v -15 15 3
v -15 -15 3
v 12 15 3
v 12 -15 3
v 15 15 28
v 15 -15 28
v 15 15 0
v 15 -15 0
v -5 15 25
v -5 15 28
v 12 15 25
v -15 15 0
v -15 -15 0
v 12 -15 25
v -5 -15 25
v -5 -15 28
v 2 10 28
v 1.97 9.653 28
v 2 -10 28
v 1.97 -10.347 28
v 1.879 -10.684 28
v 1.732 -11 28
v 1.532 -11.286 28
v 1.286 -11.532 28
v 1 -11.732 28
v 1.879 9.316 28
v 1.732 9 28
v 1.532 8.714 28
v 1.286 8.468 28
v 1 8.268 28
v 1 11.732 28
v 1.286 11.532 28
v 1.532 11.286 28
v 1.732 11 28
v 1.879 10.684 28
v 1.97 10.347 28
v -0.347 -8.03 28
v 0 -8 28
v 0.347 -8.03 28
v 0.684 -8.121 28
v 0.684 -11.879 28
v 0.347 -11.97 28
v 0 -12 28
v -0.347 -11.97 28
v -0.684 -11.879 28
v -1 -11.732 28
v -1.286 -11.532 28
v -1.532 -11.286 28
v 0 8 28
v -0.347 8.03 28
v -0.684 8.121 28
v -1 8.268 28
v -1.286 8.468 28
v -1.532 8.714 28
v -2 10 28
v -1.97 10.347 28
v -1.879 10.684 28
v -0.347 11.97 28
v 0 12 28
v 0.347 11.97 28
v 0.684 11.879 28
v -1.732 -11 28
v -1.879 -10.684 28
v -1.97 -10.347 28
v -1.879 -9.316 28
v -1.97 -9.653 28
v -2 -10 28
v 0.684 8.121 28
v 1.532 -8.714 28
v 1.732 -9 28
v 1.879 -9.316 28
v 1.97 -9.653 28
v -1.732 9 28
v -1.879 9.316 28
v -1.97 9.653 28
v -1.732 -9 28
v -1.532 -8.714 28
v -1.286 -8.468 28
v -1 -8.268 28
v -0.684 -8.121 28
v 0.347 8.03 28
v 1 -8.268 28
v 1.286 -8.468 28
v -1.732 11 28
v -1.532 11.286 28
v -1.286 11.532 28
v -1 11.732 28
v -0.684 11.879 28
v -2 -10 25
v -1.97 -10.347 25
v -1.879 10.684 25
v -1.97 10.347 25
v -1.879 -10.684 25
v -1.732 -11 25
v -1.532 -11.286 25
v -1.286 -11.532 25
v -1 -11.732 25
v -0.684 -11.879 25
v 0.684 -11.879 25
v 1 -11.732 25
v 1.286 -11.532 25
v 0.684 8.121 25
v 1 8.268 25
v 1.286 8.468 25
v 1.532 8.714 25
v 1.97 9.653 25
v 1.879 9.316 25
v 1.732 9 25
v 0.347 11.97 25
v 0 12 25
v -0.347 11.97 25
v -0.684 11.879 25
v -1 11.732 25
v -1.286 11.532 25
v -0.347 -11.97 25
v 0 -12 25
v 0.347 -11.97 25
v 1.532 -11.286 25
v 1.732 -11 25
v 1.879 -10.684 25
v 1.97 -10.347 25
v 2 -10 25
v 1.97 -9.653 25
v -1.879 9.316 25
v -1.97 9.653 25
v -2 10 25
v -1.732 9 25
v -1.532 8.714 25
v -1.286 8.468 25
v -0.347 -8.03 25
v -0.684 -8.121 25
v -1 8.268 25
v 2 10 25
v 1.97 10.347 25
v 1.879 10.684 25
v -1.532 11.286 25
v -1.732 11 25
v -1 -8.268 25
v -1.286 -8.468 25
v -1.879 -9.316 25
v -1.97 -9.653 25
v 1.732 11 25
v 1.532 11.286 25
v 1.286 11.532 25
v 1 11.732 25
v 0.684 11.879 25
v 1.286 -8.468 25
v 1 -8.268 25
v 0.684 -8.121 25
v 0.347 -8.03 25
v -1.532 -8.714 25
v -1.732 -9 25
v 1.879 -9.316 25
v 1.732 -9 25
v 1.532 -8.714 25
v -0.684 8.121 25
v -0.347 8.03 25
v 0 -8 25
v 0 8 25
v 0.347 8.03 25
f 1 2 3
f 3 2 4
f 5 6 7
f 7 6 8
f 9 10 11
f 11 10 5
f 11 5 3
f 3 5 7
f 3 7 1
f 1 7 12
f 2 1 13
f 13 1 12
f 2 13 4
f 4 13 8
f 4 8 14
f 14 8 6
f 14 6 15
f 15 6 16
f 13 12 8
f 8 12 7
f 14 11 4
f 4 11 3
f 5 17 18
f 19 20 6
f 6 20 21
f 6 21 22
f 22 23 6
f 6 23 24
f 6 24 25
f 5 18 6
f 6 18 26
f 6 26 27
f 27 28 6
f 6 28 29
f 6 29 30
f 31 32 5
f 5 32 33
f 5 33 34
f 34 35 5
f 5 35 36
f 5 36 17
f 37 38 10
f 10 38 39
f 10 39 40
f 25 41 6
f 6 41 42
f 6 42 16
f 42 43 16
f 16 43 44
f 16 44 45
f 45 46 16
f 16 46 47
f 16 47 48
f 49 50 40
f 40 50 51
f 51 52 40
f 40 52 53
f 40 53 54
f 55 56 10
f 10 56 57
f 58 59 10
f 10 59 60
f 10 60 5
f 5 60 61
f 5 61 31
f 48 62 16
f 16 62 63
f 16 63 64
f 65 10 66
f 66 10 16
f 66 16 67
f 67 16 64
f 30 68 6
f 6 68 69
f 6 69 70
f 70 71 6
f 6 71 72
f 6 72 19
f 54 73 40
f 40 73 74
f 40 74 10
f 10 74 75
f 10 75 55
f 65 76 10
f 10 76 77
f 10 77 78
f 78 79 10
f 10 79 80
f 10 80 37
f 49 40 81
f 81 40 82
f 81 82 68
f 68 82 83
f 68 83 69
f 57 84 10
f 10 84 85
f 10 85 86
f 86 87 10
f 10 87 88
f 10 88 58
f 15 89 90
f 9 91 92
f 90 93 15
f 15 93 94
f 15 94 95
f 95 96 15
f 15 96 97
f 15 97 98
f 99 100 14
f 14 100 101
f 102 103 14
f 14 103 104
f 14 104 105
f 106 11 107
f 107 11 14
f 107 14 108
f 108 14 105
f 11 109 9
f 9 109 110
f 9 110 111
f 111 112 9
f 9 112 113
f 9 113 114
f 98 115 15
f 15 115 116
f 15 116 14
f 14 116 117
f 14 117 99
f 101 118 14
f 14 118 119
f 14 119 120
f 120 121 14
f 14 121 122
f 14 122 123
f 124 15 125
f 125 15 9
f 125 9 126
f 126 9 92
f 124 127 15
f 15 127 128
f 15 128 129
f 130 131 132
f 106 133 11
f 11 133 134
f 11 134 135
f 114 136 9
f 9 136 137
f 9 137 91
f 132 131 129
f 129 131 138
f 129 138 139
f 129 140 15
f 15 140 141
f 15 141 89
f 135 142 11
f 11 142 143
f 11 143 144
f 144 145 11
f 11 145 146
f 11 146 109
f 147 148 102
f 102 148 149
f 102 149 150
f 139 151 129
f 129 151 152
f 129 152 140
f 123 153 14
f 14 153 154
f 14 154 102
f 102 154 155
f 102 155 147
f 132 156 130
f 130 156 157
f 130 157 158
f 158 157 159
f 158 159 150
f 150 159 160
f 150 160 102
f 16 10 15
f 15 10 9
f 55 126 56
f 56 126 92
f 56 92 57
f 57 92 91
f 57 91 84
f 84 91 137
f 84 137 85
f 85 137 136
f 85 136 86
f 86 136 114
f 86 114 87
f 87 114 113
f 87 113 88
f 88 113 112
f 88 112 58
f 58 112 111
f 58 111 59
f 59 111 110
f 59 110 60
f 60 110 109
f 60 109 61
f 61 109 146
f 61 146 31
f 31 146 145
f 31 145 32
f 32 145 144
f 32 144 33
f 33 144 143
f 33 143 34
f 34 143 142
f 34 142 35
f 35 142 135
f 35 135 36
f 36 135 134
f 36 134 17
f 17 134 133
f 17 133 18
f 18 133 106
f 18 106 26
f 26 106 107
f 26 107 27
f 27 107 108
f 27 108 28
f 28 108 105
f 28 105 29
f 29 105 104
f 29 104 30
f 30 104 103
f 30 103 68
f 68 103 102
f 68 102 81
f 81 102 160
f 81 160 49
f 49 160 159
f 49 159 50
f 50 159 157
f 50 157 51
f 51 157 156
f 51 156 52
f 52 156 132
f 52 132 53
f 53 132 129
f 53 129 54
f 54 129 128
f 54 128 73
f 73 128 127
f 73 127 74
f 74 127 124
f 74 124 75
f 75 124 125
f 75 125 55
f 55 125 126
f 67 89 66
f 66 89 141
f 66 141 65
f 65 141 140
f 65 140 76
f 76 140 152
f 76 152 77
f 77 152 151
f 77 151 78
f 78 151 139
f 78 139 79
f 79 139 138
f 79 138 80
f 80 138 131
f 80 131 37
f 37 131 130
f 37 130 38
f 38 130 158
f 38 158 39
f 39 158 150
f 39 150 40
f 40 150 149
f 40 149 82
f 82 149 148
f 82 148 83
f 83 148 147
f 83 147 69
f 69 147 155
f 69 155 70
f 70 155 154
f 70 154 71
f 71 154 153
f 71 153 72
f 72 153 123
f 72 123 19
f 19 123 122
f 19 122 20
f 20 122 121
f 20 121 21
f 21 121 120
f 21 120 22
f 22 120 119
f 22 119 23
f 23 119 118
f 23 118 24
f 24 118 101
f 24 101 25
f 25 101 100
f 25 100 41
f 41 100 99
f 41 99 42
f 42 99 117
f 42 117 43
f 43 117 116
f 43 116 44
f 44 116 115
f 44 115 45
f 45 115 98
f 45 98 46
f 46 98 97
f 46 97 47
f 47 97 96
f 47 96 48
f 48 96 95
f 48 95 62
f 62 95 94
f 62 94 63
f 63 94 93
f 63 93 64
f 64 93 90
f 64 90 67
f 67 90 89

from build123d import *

# Parameters (mm, degrees)
SKETCH_1_W      = 30
SKETCH_1_H      = 30
EXTRUDE_1_DEPTH = 3
SKETCH_2_W      = 3
SKETCH_2_H      = 30
EXTRUDE_2_DEPTH = 22
SKETCH_3_W      = 20
SKETCH_3_H      = 30
SKETCH_3_R      = 2
EXTRUDE_3_DEPTH = 3


with BuildPart() as part:
    # 草图1 → 凸台-拉伸1 (new body)
    with BuildSketch(Plane.XY):
        Rectangle(SKETCH_1_W, SKETCH_1_H)
    extrude(amount=EXTRUDE_1_DEPTH)

    # 草图2 → 凸台-拉伸2 (add)
    with BuildSketch(Plane.XY.offset(3)):
        with Locations((13.5, 0)):
            Rectangle(SKETCH_2_W, SKETCH_2_H)
    extrude(amount=EXTRUDE_2_DEPTH)

    # 草图3 → 凸台-拉伸3 (add)
    with BuildSketch(Plane.XY.offset(25)):
        with Locations((5, 0)):
            Rectangle(SKETCH_3_W, SKETCH_3_H)
        with Locations((0, 10)):
            Circle(SKETCH_3_R, mode=Mode.SUBTRACT)
        with Locations(Location((0, -10, 0), (0, 0, 180))):
            Circle(SKETCH_3_R, mode=Mode.SUBTRACT)
    extrude(amount=EXTRUDE_3_DEPTH)


solid = part.part
